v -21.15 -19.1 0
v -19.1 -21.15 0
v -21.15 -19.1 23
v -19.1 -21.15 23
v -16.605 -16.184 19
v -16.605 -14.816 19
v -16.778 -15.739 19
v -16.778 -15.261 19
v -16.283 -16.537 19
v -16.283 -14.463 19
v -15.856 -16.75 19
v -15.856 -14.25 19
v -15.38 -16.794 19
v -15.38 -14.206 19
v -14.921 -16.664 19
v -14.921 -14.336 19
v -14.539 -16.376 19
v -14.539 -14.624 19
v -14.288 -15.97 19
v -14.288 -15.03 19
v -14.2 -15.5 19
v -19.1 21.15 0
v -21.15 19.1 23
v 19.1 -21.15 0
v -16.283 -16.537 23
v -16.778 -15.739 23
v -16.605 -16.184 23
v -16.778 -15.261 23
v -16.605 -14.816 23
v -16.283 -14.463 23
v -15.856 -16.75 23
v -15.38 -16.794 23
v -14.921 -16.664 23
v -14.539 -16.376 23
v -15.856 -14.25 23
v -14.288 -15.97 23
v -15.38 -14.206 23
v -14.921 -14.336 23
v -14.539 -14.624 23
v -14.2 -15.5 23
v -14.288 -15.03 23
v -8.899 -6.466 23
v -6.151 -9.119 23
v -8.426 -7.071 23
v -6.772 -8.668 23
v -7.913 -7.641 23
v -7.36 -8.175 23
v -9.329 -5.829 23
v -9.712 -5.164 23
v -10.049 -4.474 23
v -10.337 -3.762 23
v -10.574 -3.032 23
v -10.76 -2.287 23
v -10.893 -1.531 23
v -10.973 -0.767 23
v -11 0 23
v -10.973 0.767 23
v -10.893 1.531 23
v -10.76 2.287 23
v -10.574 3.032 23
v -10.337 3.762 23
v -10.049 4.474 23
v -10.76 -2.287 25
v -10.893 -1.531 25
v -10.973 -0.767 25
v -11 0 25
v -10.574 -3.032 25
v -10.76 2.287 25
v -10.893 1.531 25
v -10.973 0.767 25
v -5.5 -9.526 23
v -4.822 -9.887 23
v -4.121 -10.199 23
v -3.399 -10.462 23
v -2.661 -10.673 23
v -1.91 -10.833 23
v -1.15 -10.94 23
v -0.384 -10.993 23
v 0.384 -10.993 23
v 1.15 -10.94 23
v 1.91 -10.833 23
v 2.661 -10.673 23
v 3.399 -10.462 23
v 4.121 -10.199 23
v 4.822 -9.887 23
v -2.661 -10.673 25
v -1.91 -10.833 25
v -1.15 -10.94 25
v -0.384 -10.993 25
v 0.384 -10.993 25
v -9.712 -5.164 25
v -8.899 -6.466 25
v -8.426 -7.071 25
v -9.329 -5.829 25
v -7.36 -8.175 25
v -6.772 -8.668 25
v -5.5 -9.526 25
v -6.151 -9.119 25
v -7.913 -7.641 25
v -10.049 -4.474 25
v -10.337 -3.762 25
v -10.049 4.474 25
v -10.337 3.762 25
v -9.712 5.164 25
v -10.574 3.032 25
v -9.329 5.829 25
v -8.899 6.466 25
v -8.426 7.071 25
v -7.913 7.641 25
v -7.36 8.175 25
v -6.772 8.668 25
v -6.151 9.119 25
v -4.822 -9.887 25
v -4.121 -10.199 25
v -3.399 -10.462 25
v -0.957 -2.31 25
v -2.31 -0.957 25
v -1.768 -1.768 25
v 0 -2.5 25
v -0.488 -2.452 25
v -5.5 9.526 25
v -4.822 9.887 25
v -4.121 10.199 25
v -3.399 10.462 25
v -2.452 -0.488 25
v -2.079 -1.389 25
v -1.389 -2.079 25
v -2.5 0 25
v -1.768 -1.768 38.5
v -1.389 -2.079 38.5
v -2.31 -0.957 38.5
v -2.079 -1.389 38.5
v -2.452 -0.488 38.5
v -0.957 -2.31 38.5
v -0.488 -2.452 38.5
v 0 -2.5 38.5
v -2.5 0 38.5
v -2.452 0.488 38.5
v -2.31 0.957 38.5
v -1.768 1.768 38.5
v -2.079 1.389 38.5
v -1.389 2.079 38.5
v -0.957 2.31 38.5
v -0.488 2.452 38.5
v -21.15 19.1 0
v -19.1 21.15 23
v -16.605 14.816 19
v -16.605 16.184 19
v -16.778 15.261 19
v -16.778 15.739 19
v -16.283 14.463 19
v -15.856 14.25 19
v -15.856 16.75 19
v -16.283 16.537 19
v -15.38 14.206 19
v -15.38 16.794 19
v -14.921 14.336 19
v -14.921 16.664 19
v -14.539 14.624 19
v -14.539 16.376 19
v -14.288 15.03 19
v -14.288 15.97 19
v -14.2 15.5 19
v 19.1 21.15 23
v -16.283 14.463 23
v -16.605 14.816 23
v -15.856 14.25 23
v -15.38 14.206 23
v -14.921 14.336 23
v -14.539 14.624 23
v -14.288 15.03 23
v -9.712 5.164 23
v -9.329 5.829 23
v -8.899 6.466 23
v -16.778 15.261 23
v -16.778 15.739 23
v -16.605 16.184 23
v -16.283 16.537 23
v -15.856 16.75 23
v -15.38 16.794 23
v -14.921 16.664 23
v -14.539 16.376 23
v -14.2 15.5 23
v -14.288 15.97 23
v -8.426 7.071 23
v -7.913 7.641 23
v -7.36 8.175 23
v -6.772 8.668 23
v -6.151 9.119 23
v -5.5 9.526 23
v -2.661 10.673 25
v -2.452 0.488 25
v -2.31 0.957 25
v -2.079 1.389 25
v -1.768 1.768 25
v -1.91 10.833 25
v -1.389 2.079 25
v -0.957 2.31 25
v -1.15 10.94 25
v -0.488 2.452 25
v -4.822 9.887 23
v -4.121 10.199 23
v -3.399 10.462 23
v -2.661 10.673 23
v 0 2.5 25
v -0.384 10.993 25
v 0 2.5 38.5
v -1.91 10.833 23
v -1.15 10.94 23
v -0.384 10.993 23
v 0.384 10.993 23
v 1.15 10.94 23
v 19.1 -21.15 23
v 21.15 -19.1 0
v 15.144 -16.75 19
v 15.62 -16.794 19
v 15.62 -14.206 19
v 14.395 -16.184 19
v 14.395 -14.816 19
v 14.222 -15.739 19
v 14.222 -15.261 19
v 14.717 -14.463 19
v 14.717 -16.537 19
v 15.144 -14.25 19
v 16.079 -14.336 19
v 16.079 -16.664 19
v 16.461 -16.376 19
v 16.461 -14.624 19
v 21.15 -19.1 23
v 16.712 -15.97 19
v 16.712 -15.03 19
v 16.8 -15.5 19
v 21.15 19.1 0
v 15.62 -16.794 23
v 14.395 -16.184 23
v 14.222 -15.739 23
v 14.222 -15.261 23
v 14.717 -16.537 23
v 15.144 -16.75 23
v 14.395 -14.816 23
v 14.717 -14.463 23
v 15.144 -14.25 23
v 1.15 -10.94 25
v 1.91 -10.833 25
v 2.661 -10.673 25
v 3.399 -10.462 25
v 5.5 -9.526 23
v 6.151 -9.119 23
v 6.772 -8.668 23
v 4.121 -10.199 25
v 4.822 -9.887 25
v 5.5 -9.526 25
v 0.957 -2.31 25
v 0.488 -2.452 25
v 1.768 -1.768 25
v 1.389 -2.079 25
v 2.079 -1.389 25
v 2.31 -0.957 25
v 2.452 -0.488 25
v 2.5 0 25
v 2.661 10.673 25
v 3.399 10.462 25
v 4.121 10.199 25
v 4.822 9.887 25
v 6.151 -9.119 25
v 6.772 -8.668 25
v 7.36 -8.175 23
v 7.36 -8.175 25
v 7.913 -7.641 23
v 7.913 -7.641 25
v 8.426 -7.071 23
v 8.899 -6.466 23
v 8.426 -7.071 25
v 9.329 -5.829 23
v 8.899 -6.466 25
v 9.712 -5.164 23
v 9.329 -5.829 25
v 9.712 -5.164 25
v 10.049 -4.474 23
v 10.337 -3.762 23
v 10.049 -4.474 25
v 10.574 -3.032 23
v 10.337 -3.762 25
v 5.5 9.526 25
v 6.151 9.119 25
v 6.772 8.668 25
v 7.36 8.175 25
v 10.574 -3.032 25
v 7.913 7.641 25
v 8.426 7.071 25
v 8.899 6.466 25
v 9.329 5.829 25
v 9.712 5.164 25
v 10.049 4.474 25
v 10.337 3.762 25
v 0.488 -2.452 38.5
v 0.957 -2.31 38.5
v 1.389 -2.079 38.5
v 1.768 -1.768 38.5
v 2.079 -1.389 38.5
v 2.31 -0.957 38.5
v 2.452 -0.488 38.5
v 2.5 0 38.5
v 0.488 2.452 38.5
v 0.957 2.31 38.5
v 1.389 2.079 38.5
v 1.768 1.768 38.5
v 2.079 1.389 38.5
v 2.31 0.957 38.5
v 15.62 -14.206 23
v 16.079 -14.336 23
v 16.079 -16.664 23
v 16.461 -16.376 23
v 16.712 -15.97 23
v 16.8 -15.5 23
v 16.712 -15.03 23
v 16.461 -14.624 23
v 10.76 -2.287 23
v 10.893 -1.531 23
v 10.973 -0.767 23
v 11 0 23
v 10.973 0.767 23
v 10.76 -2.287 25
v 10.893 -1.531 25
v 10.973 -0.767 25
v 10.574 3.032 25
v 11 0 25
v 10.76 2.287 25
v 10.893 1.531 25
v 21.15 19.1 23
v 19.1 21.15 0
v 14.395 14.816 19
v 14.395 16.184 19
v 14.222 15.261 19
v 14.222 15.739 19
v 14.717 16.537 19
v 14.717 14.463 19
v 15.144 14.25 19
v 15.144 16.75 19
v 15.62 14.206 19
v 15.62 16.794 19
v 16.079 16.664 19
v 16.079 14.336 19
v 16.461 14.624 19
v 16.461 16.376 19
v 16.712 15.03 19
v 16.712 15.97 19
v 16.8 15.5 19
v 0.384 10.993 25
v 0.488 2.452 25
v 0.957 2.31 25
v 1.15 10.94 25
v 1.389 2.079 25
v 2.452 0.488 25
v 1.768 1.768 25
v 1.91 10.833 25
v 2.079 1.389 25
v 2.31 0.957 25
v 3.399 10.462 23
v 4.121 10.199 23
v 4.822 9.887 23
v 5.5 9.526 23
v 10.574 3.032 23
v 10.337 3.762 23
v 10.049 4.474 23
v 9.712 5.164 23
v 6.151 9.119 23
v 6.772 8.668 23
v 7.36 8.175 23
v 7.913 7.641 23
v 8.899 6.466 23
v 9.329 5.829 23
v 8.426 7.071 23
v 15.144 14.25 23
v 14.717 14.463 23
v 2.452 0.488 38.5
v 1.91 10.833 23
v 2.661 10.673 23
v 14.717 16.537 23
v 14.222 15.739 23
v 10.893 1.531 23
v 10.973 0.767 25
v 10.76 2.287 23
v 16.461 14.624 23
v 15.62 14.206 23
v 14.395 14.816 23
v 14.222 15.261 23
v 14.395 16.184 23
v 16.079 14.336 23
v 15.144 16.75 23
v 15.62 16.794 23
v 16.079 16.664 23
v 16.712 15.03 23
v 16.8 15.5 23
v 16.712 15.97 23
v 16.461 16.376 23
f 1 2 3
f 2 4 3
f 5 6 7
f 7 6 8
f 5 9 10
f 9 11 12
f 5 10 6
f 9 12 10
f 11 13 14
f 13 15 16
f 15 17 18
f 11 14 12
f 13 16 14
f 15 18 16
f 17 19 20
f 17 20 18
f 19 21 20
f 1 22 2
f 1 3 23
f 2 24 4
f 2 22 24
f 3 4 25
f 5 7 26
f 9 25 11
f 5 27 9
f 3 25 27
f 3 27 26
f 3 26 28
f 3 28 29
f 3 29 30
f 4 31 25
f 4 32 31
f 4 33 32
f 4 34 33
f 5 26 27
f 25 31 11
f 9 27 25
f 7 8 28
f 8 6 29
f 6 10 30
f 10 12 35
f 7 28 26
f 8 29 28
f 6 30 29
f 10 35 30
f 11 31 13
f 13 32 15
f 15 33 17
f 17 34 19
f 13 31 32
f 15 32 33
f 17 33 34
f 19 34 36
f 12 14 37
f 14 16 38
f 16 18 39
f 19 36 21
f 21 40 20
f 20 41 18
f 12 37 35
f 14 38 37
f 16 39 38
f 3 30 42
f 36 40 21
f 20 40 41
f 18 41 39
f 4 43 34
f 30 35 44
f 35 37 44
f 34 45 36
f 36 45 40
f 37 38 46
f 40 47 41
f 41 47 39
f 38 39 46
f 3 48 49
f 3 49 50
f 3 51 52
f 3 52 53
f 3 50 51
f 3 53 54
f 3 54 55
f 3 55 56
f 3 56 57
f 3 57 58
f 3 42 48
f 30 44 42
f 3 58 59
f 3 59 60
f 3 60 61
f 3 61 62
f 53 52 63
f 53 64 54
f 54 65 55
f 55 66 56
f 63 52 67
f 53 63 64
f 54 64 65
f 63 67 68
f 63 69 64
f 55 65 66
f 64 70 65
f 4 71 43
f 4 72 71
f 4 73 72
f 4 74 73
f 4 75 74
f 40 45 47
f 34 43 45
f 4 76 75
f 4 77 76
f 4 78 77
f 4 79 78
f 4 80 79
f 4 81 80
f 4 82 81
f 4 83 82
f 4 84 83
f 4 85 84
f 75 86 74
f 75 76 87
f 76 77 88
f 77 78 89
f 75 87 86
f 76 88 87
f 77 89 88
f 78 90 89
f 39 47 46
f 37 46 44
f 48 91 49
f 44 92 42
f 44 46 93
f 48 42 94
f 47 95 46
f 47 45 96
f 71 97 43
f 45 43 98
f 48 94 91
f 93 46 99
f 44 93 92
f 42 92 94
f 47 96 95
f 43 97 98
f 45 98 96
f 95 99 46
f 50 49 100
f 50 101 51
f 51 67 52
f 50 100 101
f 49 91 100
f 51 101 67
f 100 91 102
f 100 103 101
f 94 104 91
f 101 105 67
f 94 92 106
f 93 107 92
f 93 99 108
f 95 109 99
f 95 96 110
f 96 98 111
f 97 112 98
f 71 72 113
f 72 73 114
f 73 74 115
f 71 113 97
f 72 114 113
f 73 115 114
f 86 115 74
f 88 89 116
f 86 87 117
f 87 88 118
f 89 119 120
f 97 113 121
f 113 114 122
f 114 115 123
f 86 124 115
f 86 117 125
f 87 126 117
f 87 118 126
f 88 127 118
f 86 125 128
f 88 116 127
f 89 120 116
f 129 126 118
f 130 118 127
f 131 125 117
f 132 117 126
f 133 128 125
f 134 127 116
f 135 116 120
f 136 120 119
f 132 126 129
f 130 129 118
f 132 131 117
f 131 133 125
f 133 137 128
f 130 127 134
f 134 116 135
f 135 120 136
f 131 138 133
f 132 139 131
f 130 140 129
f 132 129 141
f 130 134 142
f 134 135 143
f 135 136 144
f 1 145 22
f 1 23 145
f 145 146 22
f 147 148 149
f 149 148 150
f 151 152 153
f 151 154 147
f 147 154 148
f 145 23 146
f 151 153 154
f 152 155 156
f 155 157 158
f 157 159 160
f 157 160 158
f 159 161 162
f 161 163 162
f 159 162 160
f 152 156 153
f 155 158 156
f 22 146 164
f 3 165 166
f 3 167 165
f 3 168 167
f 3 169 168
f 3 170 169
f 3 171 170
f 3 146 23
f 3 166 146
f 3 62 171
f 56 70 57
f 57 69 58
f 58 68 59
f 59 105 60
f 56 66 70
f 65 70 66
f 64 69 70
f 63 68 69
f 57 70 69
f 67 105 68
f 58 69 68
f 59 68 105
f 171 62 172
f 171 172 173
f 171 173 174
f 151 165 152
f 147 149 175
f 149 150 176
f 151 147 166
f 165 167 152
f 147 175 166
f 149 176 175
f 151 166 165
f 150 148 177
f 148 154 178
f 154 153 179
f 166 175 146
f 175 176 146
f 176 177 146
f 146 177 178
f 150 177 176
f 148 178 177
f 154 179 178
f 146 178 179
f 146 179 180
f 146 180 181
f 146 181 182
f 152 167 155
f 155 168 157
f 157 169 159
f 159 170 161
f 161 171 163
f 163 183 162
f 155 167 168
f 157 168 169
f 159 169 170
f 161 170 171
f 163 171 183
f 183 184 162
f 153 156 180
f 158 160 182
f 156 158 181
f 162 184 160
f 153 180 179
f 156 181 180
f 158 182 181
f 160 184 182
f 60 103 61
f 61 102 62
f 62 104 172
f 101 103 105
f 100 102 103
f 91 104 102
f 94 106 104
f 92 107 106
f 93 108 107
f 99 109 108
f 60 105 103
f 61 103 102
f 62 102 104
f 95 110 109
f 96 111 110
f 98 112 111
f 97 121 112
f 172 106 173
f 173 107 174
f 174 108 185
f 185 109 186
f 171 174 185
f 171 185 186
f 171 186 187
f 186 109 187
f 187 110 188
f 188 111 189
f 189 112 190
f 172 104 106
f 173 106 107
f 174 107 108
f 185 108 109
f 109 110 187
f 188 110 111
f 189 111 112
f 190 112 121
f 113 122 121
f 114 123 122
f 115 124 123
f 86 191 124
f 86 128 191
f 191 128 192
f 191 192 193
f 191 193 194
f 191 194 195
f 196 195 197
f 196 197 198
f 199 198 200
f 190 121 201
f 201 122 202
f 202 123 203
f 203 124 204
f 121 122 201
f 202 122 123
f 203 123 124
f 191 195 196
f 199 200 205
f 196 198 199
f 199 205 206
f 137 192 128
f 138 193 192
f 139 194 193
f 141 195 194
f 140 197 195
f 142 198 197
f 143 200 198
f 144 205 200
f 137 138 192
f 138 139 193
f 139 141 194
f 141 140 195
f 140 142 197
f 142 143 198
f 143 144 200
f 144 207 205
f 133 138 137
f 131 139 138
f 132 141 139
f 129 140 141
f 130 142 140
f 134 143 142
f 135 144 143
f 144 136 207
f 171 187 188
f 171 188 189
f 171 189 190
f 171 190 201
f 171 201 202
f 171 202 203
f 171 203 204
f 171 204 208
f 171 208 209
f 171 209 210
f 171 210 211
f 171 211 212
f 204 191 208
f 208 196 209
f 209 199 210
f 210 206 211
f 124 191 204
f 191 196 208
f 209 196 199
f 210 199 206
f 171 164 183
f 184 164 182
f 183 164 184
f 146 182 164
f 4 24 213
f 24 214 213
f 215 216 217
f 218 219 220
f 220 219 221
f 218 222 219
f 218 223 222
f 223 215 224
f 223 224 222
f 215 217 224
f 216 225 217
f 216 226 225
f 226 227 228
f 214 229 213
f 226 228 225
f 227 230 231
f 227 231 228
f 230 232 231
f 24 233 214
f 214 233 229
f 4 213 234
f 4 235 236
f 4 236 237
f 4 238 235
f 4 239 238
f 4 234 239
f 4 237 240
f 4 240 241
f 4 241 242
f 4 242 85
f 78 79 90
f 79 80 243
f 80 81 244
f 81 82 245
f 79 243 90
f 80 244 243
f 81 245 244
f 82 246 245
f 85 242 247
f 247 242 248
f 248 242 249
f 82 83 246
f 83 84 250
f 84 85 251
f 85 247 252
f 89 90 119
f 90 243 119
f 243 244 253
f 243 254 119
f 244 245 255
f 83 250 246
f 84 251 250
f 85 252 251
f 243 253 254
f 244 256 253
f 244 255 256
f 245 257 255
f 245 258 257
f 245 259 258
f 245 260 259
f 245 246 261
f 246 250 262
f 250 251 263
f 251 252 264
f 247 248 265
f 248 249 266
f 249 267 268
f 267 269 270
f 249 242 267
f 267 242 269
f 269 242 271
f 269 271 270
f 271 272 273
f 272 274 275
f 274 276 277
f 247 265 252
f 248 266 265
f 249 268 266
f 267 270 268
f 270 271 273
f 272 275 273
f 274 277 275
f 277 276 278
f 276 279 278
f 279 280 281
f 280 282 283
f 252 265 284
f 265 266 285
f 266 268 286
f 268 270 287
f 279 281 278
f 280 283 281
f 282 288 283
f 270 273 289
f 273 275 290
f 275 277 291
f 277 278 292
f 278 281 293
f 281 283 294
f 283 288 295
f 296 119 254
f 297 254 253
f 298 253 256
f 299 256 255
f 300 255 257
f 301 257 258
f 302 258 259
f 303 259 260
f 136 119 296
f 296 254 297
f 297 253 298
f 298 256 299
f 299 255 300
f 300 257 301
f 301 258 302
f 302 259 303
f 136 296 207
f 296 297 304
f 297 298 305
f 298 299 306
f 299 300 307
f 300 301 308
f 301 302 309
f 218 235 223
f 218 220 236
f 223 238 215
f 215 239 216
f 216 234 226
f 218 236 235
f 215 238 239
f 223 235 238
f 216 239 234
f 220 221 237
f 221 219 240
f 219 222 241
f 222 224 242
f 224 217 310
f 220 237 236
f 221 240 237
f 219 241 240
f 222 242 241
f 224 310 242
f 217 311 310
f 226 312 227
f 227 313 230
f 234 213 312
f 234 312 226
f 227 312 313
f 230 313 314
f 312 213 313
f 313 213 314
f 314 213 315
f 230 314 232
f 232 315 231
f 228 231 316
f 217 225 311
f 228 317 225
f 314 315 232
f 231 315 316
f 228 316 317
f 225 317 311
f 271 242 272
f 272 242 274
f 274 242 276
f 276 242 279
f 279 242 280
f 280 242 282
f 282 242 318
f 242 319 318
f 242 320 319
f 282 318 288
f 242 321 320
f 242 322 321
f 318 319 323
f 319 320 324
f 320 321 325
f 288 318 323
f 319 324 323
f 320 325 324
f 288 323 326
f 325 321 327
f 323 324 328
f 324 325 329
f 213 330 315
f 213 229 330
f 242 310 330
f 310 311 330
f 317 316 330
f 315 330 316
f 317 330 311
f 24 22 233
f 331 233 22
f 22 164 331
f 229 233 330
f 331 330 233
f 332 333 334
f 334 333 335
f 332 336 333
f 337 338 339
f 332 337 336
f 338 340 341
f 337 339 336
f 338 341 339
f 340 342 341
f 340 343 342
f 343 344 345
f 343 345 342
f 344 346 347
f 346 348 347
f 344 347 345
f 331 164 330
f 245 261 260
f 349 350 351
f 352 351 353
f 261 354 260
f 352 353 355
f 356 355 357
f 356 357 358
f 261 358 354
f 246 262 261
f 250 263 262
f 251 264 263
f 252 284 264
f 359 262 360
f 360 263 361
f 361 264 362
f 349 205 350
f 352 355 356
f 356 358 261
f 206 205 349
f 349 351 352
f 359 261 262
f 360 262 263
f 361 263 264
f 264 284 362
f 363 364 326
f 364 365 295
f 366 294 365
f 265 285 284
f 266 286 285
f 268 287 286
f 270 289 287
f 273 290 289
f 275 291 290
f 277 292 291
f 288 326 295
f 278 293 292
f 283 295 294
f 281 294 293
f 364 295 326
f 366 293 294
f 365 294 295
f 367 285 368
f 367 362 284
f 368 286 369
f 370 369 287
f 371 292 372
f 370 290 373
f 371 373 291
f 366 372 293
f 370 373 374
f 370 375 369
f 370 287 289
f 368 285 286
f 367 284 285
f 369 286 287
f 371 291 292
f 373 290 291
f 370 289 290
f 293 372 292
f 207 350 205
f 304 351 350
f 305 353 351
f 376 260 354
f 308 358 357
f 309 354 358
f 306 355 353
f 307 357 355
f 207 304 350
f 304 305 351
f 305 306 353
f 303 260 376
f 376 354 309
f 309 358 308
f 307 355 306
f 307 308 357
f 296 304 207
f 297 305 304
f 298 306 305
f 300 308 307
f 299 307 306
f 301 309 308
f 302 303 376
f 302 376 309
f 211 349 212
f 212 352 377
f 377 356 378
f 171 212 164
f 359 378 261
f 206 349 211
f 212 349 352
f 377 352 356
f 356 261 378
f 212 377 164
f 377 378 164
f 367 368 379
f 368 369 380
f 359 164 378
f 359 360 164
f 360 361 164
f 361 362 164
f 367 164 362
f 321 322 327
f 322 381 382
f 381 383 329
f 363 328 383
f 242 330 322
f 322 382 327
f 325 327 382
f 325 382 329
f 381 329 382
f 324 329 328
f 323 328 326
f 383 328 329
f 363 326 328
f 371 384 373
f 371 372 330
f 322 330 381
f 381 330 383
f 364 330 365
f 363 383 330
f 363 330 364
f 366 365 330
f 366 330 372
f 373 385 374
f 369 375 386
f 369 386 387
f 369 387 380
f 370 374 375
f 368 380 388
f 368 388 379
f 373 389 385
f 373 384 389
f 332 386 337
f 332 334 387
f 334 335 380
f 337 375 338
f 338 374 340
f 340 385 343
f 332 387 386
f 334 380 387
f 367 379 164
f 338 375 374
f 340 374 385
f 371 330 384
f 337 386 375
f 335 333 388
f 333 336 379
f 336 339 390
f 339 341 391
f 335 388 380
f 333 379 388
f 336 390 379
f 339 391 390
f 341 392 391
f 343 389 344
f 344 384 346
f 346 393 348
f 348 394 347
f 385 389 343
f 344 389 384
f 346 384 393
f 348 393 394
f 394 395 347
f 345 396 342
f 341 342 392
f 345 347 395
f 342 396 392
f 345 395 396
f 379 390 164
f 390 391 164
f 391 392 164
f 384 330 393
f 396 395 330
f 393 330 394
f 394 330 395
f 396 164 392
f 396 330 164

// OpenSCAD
// file: ../lib/lib.scad
// Shared helpers. Include AFTER params.scad (needs TOL, M3_* etc.).
$fa = 4; $fs = 0.5;

module rrect(size, r) {            // 2D rounded rectangle, centred
    r2 = min(r, min(size[0], size[1]) / 2 - 0.001);
    offset(r = r2) square([size[0] - 2 * r2, size[1] - 2 * r2], center = true);
}
module rbox(size, r, center_xy = true) {   // box with rounded vertical edges
    translate(center_xy ? [0, 0, 0] : [size[0] / 2, size[1] / 2, 0])
        linear_extrude(size[2]) rrect([size[0], size[1]], r);
}
module rbox_at(x0, x1, y0, y1, z0, z1, r = 0.01) {
    translate([(x0 + x1) / 2, (y0 + y1) / 2, z0]) rbox([x1 - x0, y1 - y0, z1 - z0], r);
}
module box_at(x0, x1, y0, y1, z0, z1) { translate([x0, y0, z0]) cube([x1 - x0, y1 - y0, z1 - z0]); }

module ring(ro, ri, h) { difference() { cylinder(r = ro, h = h); translate([0, 0, -1]) cylinder(r = ri, h = h + 2); } }
module ring_sector(ro, ri, h, a0, a1) {
    intersection() {
        ring(ro, ri, h);
        linear_extrude(h) polygon(concat([[0, 0]], [for (a = [a0 : (a1 - a0) / 24 : a1]) 2 * ro * [cos(a), sin(a)]]));
    }
}
// teardrop hole along an axis lying horizontal (axis = Y after rotation), printable w/o support
module teardrop2d(d) { union() { circle(d = d); rotate(45) square(d / 2); } }
// vertical heat-set insert hole, opening at z=0 going +z (depth l)
module insert_hole(l = M3_INSERT_L) { translate([0, 0, -EPS]) cylinder(d = M3_INSERT_D, h = l + EPS); }
module m3_clear(l) { translate([0, 0, -EPS]) cylinder(d = M3_CLEAR, h = l + 2 * EPS); }
module m3_csk(l) {  // countersunk clearance from z=0 upward, head at z=0 side
    translate([0, 0, -EPS]) { cylinder(d = M3_CLEAR, h = l + 2 * EPS); cylinder(d1 = 6.4, d2 = M3_CLEAR, h = 1.7); }
}
module card2d() { rrect([CARD_L, CARD_W], CARD_R); }
module card_at(cy, z) { translate([0, cy, z]) linear_extrude(CARD_T) card2d(); }

// ---- gears ----
function _inv(a) = tan(a) - a * PI_ / 180;           // involute function, a in deg
function _invpt(rb, r, ang0, s) = let(al = acos(rb / r), th = ang0 - s * (_inv(al) * 180 / PI_)) [r * cos(th), r * sin(th)];
module involute_gear2d(m, z, pa = 20, clearance = 0.05) {
    rp = m * z / 2; rb = rp * cos(pa); ra = rp + m - clearance; rf = rp - 1.25 * m;
    half = 90 / z + _inv(pa) * 180 / PI_;            // tooth half-angle at base (deg)
    n = 8;
    rs = [for (i = [0 : n]) max(rb, rf) + (ra - max(rb, rf)) * i / n];
    union() {
        circle(r = rf, $fn = z * 4);
        for (k = [0 : z - 1]) rotate(k * 360 / z) polygon(concat(
            [[rf * cos(-half), rf * sin(-half)]],
            [for (r = rs) let(p = _invpt(rb, r, half, 1)) [p[0], -p[1]]],
            [for (i = [n : -1 : 0]) _invpt(rb, rs[i], half, 1)],
            [[rf * cos(half), rf * sin(half)]]));
    }
}
// straight gear rack (2D in XY: teeth along +x, pointing -y, pitch line at y=0)
module gear_rack2d(m, len, back = 3) {
    p = PI_ * m; ad = m; de = 1.25 * m; t = tan(20);
    n = ceil(len / p) + 1;
    intersection() {
        union() {
            translate([0, de]) square([len, back]);
            for (i = [0 : n]) translate([i * p - p / 4, 0]) polygon([
                [-(p / 4 + de * t), de + 0.01], [p / 4 + de * t + 0.01, de + 0.01],
                [p / 4 - ad * t, -ad], [-(p / 4 - ad * t), -ad] ]);
        }
        translate([0, -ad - 1]) square([len, ad + de + back + 2]);
    }
}
// GT2 belt-tooth profile ring (teeth outward), 2D
module gt2_ring2d(n, r_land, ri) {
    union() {
        difference() { circle(r = r_land + 0.01, $fn = n * 2); circle(r = ri, $fn = n * 2); }
        for (k = [0 : n - 1]) rotate(k * 360 / n)
            translate([r_land, 0]) hull() { translate([-0.2, 0]) square([0.2, 1.0], center = true); translate([0.25, 0]) circle(r = 0.5, $fn = 12); }
    }
}
// main file
// Vendor model: NEMA17 pancake stepper 42x42x23 (turret drive). Local: body z 0..23, face up, shaft +Z.
include <../params.scad>
include <../lib/lib.scad>
module nema17_body(l) {
    color([0.15,0.15,0.16]) linear_extrude(l) offset(delta = NEMA_CH, chamfer = true) square(NEMA_W - 2 * NEMA_CH, center = true);
    color([0.75,0.75,0.78]) for (z = [0, l - 7]) translate([0, 0, z]) linear_extrude(7) offset(delta = NEMA_CH, chamfer = true) square(NEMA_W - 2 * NEMA_CH - 0.01, center = true);
}
module vendor_nema17_pancake(shaft = 15.5) {
    difference() {
        nema17_body(NEMA_PANCAKE_L);
        for (x = [-1, 1], y = [-1, 1]) translate([x * NEMA_HOLE / 2, y * NEMA_HOLE / 2, NEMA_PANCAKE_L - 4]) cylinder(d = 2.6, h = 5);
    }
    color([0.7,0.7,0.72]) translate([0, 0, NEMA_PANCAKE_L]) cylinder(d = NEMA_BOSS_D, h = NEMA_BOSS_H);
    color("silver") translate([0, 0, NEMA_PANCAKE_L]) cylinder(d = 5, h = shaft);
}

vendor_nema17_pancake();
